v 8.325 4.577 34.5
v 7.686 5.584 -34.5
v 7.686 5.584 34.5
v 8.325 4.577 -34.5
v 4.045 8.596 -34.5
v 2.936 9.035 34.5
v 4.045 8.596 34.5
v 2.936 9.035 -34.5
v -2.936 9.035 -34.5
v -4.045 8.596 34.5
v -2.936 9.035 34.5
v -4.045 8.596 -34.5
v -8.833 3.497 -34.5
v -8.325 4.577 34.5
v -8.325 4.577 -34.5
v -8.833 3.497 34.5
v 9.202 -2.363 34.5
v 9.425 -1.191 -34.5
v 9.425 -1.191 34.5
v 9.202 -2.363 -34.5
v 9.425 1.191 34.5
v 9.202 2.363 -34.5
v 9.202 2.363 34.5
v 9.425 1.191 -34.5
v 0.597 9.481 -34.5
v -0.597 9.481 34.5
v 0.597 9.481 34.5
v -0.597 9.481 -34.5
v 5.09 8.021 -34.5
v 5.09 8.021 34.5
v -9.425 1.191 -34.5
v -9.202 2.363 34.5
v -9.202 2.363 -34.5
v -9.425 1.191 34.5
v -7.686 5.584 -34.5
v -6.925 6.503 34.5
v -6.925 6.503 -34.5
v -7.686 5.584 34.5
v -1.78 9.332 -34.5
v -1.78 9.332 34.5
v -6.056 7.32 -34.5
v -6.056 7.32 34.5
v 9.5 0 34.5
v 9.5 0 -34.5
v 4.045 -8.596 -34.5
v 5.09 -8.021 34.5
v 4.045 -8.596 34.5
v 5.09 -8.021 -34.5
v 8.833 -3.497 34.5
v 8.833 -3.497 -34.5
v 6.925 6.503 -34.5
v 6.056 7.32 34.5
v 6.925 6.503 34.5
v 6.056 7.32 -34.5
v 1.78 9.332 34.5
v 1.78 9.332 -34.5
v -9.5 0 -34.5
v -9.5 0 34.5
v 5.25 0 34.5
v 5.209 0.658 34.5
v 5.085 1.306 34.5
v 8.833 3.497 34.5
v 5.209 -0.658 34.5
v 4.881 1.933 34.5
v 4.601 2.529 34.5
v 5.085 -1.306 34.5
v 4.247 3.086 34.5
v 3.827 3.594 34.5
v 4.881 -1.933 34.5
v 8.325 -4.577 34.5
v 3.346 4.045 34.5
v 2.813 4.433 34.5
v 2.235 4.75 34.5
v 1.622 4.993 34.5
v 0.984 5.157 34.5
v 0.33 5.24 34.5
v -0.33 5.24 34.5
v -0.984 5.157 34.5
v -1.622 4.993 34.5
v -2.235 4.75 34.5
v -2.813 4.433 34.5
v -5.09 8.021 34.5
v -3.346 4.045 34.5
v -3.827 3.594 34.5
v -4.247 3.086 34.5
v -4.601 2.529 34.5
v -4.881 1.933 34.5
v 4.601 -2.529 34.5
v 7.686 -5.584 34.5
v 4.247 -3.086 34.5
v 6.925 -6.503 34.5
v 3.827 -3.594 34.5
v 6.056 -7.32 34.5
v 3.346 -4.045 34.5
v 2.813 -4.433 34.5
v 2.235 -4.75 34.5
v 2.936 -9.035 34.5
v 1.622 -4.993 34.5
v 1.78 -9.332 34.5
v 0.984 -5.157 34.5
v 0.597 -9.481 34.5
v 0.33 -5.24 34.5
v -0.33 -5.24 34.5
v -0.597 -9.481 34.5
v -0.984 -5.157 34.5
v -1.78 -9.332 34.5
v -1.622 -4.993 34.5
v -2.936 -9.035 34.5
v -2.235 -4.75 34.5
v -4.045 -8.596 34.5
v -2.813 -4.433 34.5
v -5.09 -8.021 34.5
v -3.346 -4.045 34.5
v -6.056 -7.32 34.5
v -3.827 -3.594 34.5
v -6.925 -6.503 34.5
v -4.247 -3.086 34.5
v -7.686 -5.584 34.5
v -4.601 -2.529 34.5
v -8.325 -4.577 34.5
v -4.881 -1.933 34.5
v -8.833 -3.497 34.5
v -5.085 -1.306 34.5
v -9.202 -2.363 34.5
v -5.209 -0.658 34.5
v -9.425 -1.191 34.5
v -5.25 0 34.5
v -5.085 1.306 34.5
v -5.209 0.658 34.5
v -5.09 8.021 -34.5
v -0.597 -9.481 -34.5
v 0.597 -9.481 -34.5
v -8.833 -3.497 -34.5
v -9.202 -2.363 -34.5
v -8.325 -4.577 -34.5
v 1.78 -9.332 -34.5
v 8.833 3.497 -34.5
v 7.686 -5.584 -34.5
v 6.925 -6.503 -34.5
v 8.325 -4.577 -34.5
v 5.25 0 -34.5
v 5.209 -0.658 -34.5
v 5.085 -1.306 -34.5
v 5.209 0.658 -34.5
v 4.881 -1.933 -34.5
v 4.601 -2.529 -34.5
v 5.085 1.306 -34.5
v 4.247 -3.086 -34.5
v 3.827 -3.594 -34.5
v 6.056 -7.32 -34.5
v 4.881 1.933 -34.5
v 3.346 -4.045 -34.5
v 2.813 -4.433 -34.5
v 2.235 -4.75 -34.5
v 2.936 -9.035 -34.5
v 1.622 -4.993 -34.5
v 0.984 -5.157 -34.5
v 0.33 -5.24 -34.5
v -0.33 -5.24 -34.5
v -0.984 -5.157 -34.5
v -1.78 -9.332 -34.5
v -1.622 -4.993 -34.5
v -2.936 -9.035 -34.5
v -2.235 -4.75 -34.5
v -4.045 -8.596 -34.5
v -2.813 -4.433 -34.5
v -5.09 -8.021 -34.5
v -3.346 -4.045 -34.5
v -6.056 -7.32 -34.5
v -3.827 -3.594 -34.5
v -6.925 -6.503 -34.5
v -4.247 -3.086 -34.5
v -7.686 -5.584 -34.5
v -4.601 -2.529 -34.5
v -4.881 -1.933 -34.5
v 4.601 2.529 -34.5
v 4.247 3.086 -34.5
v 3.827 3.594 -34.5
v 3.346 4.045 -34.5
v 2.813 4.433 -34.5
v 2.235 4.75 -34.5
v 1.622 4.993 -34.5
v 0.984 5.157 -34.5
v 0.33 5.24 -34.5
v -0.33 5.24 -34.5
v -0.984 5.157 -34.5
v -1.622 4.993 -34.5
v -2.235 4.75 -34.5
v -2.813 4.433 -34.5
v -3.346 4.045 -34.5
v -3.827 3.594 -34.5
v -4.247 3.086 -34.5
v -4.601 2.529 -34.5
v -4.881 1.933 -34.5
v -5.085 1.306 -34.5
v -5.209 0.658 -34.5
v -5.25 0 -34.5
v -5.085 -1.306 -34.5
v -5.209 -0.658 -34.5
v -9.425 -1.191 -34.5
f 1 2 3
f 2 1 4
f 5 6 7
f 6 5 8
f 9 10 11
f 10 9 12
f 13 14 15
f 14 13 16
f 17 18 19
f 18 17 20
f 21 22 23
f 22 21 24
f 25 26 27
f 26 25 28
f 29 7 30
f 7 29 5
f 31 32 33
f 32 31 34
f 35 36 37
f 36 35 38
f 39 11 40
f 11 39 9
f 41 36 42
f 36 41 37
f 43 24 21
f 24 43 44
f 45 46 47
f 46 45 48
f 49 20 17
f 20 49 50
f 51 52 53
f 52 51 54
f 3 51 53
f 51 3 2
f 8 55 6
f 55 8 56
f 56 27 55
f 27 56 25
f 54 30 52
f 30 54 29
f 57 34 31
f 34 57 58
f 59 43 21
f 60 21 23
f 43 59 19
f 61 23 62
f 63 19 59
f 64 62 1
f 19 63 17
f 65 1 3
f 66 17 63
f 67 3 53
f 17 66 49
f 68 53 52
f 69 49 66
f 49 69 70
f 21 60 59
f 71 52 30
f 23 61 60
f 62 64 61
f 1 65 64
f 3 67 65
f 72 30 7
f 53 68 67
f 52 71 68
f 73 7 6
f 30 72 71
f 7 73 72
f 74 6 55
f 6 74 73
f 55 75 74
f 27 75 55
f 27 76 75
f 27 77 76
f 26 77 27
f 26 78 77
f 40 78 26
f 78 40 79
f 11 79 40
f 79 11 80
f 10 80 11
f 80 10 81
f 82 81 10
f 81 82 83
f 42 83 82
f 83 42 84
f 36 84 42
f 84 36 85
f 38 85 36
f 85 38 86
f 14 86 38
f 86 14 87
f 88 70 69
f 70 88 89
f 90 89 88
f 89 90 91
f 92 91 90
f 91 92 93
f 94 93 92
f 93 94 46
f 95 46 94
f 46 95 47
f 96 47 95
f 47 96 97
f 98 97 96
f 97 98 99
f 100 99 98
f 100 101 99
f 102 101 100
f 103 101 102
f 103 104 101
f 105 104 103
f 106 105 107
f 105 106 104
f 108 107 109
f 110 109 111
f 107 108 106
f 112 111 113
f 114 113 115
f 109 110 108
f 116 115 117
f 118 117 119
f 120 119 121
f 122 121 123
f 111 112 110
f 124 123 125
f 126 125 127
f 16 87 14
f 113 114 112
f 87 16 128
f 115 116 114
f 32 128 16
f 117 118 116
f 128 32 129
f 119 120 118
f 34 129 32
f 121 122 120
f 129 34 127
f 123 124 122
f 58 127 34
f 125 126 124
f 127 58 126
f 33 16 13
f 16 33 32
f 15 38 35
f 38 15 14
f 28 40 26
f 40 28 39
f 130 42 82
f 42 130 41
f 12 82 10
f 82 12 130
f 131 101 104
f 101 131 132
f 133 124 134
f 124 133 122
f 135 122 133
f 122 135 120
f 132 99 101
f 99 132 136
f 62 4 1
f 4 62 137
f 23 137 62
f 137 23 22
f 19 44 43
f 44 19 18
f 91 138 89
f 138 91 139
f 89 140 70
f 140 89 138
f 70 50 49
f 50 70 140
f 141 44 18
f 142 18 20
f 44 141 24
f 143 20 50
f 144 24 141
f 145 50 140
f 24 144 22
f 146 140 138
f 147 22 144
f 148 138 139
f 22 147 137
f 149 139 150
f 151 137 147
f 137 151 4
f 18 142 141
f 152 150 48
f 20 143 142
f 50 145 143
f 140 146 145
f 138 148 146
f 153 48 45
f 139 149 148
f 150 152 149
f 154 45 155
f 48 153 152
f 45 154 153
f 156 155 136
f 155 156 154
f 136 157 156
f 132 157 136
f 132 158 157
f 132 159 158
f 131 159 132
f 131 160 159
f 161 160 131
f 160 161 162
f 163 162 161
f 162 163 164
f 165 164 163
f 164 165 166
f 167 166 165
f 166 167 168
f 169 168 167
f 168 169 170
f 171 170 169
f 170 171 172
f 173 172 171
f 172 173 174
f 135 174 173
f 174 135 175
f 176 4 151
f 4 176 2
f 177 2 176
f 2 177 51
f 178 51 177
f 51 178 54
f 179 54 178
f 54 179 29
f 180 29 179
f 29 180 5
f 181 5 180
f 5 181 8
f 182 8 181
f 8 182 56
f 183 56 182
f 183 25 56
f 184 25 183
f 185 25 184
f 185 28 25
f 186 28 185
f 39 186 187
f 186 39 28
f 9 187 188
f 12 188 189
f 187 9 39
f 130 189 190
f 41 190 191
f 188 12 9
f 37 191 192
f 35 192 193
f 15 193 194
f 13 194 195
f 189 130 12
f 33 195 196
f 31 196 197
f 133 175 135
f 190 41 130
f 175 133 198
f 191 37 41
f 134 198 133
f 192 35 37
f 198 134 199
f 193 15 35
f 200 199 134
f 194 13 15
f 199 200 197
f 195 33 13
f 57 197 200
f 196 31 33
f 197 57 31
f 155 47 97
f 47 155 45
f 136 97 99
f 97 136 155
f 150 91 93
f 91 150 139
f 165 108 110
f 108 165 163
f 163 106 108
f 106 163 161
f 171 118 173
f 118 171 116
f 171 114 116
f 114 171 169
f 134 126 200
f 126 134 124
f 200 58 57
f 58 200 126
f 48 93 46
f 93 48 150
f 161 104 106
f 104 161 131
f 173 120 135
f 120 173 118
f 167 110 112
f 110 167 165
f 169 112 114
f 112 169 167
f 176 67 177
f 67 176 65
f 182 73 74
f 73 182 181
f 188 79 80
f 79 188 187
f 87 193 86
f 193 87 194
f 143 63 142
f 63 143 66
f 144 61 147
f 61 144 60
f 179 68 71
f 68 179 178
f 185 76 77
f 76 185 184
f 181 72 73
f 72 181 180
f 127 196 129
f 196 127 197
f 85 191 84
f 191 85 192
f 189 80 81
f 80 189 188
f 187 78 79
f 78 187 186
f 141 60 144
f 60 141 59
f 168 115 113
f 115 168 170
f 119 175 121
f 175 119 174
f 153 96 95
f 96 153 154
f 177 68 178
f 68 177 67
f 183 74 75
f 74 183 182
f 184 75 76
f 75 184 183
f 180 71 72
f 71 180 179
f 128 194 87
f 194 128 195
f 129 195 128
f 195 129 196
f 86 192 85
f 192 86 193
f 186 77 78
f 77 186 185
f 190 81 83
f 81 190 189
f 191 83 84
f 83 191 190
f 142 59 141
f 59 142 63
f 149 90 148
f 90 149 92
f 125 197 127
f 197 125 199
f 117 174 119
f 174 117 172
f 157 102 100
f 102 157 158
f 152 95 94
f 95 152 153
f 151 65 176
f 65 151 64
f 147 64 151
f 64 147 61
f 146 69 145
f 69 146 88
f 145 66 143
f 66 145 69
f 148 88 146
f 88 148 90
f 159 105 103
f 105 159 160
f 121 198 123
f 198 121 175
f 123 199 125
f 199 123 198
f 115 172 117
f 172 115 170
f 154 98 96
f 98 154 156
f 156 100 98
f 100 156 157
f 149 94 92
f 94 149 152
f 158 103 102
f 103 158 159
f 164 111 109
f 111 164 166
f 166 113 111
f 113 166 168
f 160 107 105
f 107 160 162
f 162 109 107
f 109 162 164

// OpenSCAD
$fn = 50;


difference() {
	union() {
		translate(v = [0, 0, -34.5000000000]) {
			cylinder(h = 69, r = 9.5000000000);
		}
	}
	union() {
		translate(v = [0, 0, -100.0000000000]) {
			cylinder(h = 200, r = 5.2500000000);
		}
	}
}
